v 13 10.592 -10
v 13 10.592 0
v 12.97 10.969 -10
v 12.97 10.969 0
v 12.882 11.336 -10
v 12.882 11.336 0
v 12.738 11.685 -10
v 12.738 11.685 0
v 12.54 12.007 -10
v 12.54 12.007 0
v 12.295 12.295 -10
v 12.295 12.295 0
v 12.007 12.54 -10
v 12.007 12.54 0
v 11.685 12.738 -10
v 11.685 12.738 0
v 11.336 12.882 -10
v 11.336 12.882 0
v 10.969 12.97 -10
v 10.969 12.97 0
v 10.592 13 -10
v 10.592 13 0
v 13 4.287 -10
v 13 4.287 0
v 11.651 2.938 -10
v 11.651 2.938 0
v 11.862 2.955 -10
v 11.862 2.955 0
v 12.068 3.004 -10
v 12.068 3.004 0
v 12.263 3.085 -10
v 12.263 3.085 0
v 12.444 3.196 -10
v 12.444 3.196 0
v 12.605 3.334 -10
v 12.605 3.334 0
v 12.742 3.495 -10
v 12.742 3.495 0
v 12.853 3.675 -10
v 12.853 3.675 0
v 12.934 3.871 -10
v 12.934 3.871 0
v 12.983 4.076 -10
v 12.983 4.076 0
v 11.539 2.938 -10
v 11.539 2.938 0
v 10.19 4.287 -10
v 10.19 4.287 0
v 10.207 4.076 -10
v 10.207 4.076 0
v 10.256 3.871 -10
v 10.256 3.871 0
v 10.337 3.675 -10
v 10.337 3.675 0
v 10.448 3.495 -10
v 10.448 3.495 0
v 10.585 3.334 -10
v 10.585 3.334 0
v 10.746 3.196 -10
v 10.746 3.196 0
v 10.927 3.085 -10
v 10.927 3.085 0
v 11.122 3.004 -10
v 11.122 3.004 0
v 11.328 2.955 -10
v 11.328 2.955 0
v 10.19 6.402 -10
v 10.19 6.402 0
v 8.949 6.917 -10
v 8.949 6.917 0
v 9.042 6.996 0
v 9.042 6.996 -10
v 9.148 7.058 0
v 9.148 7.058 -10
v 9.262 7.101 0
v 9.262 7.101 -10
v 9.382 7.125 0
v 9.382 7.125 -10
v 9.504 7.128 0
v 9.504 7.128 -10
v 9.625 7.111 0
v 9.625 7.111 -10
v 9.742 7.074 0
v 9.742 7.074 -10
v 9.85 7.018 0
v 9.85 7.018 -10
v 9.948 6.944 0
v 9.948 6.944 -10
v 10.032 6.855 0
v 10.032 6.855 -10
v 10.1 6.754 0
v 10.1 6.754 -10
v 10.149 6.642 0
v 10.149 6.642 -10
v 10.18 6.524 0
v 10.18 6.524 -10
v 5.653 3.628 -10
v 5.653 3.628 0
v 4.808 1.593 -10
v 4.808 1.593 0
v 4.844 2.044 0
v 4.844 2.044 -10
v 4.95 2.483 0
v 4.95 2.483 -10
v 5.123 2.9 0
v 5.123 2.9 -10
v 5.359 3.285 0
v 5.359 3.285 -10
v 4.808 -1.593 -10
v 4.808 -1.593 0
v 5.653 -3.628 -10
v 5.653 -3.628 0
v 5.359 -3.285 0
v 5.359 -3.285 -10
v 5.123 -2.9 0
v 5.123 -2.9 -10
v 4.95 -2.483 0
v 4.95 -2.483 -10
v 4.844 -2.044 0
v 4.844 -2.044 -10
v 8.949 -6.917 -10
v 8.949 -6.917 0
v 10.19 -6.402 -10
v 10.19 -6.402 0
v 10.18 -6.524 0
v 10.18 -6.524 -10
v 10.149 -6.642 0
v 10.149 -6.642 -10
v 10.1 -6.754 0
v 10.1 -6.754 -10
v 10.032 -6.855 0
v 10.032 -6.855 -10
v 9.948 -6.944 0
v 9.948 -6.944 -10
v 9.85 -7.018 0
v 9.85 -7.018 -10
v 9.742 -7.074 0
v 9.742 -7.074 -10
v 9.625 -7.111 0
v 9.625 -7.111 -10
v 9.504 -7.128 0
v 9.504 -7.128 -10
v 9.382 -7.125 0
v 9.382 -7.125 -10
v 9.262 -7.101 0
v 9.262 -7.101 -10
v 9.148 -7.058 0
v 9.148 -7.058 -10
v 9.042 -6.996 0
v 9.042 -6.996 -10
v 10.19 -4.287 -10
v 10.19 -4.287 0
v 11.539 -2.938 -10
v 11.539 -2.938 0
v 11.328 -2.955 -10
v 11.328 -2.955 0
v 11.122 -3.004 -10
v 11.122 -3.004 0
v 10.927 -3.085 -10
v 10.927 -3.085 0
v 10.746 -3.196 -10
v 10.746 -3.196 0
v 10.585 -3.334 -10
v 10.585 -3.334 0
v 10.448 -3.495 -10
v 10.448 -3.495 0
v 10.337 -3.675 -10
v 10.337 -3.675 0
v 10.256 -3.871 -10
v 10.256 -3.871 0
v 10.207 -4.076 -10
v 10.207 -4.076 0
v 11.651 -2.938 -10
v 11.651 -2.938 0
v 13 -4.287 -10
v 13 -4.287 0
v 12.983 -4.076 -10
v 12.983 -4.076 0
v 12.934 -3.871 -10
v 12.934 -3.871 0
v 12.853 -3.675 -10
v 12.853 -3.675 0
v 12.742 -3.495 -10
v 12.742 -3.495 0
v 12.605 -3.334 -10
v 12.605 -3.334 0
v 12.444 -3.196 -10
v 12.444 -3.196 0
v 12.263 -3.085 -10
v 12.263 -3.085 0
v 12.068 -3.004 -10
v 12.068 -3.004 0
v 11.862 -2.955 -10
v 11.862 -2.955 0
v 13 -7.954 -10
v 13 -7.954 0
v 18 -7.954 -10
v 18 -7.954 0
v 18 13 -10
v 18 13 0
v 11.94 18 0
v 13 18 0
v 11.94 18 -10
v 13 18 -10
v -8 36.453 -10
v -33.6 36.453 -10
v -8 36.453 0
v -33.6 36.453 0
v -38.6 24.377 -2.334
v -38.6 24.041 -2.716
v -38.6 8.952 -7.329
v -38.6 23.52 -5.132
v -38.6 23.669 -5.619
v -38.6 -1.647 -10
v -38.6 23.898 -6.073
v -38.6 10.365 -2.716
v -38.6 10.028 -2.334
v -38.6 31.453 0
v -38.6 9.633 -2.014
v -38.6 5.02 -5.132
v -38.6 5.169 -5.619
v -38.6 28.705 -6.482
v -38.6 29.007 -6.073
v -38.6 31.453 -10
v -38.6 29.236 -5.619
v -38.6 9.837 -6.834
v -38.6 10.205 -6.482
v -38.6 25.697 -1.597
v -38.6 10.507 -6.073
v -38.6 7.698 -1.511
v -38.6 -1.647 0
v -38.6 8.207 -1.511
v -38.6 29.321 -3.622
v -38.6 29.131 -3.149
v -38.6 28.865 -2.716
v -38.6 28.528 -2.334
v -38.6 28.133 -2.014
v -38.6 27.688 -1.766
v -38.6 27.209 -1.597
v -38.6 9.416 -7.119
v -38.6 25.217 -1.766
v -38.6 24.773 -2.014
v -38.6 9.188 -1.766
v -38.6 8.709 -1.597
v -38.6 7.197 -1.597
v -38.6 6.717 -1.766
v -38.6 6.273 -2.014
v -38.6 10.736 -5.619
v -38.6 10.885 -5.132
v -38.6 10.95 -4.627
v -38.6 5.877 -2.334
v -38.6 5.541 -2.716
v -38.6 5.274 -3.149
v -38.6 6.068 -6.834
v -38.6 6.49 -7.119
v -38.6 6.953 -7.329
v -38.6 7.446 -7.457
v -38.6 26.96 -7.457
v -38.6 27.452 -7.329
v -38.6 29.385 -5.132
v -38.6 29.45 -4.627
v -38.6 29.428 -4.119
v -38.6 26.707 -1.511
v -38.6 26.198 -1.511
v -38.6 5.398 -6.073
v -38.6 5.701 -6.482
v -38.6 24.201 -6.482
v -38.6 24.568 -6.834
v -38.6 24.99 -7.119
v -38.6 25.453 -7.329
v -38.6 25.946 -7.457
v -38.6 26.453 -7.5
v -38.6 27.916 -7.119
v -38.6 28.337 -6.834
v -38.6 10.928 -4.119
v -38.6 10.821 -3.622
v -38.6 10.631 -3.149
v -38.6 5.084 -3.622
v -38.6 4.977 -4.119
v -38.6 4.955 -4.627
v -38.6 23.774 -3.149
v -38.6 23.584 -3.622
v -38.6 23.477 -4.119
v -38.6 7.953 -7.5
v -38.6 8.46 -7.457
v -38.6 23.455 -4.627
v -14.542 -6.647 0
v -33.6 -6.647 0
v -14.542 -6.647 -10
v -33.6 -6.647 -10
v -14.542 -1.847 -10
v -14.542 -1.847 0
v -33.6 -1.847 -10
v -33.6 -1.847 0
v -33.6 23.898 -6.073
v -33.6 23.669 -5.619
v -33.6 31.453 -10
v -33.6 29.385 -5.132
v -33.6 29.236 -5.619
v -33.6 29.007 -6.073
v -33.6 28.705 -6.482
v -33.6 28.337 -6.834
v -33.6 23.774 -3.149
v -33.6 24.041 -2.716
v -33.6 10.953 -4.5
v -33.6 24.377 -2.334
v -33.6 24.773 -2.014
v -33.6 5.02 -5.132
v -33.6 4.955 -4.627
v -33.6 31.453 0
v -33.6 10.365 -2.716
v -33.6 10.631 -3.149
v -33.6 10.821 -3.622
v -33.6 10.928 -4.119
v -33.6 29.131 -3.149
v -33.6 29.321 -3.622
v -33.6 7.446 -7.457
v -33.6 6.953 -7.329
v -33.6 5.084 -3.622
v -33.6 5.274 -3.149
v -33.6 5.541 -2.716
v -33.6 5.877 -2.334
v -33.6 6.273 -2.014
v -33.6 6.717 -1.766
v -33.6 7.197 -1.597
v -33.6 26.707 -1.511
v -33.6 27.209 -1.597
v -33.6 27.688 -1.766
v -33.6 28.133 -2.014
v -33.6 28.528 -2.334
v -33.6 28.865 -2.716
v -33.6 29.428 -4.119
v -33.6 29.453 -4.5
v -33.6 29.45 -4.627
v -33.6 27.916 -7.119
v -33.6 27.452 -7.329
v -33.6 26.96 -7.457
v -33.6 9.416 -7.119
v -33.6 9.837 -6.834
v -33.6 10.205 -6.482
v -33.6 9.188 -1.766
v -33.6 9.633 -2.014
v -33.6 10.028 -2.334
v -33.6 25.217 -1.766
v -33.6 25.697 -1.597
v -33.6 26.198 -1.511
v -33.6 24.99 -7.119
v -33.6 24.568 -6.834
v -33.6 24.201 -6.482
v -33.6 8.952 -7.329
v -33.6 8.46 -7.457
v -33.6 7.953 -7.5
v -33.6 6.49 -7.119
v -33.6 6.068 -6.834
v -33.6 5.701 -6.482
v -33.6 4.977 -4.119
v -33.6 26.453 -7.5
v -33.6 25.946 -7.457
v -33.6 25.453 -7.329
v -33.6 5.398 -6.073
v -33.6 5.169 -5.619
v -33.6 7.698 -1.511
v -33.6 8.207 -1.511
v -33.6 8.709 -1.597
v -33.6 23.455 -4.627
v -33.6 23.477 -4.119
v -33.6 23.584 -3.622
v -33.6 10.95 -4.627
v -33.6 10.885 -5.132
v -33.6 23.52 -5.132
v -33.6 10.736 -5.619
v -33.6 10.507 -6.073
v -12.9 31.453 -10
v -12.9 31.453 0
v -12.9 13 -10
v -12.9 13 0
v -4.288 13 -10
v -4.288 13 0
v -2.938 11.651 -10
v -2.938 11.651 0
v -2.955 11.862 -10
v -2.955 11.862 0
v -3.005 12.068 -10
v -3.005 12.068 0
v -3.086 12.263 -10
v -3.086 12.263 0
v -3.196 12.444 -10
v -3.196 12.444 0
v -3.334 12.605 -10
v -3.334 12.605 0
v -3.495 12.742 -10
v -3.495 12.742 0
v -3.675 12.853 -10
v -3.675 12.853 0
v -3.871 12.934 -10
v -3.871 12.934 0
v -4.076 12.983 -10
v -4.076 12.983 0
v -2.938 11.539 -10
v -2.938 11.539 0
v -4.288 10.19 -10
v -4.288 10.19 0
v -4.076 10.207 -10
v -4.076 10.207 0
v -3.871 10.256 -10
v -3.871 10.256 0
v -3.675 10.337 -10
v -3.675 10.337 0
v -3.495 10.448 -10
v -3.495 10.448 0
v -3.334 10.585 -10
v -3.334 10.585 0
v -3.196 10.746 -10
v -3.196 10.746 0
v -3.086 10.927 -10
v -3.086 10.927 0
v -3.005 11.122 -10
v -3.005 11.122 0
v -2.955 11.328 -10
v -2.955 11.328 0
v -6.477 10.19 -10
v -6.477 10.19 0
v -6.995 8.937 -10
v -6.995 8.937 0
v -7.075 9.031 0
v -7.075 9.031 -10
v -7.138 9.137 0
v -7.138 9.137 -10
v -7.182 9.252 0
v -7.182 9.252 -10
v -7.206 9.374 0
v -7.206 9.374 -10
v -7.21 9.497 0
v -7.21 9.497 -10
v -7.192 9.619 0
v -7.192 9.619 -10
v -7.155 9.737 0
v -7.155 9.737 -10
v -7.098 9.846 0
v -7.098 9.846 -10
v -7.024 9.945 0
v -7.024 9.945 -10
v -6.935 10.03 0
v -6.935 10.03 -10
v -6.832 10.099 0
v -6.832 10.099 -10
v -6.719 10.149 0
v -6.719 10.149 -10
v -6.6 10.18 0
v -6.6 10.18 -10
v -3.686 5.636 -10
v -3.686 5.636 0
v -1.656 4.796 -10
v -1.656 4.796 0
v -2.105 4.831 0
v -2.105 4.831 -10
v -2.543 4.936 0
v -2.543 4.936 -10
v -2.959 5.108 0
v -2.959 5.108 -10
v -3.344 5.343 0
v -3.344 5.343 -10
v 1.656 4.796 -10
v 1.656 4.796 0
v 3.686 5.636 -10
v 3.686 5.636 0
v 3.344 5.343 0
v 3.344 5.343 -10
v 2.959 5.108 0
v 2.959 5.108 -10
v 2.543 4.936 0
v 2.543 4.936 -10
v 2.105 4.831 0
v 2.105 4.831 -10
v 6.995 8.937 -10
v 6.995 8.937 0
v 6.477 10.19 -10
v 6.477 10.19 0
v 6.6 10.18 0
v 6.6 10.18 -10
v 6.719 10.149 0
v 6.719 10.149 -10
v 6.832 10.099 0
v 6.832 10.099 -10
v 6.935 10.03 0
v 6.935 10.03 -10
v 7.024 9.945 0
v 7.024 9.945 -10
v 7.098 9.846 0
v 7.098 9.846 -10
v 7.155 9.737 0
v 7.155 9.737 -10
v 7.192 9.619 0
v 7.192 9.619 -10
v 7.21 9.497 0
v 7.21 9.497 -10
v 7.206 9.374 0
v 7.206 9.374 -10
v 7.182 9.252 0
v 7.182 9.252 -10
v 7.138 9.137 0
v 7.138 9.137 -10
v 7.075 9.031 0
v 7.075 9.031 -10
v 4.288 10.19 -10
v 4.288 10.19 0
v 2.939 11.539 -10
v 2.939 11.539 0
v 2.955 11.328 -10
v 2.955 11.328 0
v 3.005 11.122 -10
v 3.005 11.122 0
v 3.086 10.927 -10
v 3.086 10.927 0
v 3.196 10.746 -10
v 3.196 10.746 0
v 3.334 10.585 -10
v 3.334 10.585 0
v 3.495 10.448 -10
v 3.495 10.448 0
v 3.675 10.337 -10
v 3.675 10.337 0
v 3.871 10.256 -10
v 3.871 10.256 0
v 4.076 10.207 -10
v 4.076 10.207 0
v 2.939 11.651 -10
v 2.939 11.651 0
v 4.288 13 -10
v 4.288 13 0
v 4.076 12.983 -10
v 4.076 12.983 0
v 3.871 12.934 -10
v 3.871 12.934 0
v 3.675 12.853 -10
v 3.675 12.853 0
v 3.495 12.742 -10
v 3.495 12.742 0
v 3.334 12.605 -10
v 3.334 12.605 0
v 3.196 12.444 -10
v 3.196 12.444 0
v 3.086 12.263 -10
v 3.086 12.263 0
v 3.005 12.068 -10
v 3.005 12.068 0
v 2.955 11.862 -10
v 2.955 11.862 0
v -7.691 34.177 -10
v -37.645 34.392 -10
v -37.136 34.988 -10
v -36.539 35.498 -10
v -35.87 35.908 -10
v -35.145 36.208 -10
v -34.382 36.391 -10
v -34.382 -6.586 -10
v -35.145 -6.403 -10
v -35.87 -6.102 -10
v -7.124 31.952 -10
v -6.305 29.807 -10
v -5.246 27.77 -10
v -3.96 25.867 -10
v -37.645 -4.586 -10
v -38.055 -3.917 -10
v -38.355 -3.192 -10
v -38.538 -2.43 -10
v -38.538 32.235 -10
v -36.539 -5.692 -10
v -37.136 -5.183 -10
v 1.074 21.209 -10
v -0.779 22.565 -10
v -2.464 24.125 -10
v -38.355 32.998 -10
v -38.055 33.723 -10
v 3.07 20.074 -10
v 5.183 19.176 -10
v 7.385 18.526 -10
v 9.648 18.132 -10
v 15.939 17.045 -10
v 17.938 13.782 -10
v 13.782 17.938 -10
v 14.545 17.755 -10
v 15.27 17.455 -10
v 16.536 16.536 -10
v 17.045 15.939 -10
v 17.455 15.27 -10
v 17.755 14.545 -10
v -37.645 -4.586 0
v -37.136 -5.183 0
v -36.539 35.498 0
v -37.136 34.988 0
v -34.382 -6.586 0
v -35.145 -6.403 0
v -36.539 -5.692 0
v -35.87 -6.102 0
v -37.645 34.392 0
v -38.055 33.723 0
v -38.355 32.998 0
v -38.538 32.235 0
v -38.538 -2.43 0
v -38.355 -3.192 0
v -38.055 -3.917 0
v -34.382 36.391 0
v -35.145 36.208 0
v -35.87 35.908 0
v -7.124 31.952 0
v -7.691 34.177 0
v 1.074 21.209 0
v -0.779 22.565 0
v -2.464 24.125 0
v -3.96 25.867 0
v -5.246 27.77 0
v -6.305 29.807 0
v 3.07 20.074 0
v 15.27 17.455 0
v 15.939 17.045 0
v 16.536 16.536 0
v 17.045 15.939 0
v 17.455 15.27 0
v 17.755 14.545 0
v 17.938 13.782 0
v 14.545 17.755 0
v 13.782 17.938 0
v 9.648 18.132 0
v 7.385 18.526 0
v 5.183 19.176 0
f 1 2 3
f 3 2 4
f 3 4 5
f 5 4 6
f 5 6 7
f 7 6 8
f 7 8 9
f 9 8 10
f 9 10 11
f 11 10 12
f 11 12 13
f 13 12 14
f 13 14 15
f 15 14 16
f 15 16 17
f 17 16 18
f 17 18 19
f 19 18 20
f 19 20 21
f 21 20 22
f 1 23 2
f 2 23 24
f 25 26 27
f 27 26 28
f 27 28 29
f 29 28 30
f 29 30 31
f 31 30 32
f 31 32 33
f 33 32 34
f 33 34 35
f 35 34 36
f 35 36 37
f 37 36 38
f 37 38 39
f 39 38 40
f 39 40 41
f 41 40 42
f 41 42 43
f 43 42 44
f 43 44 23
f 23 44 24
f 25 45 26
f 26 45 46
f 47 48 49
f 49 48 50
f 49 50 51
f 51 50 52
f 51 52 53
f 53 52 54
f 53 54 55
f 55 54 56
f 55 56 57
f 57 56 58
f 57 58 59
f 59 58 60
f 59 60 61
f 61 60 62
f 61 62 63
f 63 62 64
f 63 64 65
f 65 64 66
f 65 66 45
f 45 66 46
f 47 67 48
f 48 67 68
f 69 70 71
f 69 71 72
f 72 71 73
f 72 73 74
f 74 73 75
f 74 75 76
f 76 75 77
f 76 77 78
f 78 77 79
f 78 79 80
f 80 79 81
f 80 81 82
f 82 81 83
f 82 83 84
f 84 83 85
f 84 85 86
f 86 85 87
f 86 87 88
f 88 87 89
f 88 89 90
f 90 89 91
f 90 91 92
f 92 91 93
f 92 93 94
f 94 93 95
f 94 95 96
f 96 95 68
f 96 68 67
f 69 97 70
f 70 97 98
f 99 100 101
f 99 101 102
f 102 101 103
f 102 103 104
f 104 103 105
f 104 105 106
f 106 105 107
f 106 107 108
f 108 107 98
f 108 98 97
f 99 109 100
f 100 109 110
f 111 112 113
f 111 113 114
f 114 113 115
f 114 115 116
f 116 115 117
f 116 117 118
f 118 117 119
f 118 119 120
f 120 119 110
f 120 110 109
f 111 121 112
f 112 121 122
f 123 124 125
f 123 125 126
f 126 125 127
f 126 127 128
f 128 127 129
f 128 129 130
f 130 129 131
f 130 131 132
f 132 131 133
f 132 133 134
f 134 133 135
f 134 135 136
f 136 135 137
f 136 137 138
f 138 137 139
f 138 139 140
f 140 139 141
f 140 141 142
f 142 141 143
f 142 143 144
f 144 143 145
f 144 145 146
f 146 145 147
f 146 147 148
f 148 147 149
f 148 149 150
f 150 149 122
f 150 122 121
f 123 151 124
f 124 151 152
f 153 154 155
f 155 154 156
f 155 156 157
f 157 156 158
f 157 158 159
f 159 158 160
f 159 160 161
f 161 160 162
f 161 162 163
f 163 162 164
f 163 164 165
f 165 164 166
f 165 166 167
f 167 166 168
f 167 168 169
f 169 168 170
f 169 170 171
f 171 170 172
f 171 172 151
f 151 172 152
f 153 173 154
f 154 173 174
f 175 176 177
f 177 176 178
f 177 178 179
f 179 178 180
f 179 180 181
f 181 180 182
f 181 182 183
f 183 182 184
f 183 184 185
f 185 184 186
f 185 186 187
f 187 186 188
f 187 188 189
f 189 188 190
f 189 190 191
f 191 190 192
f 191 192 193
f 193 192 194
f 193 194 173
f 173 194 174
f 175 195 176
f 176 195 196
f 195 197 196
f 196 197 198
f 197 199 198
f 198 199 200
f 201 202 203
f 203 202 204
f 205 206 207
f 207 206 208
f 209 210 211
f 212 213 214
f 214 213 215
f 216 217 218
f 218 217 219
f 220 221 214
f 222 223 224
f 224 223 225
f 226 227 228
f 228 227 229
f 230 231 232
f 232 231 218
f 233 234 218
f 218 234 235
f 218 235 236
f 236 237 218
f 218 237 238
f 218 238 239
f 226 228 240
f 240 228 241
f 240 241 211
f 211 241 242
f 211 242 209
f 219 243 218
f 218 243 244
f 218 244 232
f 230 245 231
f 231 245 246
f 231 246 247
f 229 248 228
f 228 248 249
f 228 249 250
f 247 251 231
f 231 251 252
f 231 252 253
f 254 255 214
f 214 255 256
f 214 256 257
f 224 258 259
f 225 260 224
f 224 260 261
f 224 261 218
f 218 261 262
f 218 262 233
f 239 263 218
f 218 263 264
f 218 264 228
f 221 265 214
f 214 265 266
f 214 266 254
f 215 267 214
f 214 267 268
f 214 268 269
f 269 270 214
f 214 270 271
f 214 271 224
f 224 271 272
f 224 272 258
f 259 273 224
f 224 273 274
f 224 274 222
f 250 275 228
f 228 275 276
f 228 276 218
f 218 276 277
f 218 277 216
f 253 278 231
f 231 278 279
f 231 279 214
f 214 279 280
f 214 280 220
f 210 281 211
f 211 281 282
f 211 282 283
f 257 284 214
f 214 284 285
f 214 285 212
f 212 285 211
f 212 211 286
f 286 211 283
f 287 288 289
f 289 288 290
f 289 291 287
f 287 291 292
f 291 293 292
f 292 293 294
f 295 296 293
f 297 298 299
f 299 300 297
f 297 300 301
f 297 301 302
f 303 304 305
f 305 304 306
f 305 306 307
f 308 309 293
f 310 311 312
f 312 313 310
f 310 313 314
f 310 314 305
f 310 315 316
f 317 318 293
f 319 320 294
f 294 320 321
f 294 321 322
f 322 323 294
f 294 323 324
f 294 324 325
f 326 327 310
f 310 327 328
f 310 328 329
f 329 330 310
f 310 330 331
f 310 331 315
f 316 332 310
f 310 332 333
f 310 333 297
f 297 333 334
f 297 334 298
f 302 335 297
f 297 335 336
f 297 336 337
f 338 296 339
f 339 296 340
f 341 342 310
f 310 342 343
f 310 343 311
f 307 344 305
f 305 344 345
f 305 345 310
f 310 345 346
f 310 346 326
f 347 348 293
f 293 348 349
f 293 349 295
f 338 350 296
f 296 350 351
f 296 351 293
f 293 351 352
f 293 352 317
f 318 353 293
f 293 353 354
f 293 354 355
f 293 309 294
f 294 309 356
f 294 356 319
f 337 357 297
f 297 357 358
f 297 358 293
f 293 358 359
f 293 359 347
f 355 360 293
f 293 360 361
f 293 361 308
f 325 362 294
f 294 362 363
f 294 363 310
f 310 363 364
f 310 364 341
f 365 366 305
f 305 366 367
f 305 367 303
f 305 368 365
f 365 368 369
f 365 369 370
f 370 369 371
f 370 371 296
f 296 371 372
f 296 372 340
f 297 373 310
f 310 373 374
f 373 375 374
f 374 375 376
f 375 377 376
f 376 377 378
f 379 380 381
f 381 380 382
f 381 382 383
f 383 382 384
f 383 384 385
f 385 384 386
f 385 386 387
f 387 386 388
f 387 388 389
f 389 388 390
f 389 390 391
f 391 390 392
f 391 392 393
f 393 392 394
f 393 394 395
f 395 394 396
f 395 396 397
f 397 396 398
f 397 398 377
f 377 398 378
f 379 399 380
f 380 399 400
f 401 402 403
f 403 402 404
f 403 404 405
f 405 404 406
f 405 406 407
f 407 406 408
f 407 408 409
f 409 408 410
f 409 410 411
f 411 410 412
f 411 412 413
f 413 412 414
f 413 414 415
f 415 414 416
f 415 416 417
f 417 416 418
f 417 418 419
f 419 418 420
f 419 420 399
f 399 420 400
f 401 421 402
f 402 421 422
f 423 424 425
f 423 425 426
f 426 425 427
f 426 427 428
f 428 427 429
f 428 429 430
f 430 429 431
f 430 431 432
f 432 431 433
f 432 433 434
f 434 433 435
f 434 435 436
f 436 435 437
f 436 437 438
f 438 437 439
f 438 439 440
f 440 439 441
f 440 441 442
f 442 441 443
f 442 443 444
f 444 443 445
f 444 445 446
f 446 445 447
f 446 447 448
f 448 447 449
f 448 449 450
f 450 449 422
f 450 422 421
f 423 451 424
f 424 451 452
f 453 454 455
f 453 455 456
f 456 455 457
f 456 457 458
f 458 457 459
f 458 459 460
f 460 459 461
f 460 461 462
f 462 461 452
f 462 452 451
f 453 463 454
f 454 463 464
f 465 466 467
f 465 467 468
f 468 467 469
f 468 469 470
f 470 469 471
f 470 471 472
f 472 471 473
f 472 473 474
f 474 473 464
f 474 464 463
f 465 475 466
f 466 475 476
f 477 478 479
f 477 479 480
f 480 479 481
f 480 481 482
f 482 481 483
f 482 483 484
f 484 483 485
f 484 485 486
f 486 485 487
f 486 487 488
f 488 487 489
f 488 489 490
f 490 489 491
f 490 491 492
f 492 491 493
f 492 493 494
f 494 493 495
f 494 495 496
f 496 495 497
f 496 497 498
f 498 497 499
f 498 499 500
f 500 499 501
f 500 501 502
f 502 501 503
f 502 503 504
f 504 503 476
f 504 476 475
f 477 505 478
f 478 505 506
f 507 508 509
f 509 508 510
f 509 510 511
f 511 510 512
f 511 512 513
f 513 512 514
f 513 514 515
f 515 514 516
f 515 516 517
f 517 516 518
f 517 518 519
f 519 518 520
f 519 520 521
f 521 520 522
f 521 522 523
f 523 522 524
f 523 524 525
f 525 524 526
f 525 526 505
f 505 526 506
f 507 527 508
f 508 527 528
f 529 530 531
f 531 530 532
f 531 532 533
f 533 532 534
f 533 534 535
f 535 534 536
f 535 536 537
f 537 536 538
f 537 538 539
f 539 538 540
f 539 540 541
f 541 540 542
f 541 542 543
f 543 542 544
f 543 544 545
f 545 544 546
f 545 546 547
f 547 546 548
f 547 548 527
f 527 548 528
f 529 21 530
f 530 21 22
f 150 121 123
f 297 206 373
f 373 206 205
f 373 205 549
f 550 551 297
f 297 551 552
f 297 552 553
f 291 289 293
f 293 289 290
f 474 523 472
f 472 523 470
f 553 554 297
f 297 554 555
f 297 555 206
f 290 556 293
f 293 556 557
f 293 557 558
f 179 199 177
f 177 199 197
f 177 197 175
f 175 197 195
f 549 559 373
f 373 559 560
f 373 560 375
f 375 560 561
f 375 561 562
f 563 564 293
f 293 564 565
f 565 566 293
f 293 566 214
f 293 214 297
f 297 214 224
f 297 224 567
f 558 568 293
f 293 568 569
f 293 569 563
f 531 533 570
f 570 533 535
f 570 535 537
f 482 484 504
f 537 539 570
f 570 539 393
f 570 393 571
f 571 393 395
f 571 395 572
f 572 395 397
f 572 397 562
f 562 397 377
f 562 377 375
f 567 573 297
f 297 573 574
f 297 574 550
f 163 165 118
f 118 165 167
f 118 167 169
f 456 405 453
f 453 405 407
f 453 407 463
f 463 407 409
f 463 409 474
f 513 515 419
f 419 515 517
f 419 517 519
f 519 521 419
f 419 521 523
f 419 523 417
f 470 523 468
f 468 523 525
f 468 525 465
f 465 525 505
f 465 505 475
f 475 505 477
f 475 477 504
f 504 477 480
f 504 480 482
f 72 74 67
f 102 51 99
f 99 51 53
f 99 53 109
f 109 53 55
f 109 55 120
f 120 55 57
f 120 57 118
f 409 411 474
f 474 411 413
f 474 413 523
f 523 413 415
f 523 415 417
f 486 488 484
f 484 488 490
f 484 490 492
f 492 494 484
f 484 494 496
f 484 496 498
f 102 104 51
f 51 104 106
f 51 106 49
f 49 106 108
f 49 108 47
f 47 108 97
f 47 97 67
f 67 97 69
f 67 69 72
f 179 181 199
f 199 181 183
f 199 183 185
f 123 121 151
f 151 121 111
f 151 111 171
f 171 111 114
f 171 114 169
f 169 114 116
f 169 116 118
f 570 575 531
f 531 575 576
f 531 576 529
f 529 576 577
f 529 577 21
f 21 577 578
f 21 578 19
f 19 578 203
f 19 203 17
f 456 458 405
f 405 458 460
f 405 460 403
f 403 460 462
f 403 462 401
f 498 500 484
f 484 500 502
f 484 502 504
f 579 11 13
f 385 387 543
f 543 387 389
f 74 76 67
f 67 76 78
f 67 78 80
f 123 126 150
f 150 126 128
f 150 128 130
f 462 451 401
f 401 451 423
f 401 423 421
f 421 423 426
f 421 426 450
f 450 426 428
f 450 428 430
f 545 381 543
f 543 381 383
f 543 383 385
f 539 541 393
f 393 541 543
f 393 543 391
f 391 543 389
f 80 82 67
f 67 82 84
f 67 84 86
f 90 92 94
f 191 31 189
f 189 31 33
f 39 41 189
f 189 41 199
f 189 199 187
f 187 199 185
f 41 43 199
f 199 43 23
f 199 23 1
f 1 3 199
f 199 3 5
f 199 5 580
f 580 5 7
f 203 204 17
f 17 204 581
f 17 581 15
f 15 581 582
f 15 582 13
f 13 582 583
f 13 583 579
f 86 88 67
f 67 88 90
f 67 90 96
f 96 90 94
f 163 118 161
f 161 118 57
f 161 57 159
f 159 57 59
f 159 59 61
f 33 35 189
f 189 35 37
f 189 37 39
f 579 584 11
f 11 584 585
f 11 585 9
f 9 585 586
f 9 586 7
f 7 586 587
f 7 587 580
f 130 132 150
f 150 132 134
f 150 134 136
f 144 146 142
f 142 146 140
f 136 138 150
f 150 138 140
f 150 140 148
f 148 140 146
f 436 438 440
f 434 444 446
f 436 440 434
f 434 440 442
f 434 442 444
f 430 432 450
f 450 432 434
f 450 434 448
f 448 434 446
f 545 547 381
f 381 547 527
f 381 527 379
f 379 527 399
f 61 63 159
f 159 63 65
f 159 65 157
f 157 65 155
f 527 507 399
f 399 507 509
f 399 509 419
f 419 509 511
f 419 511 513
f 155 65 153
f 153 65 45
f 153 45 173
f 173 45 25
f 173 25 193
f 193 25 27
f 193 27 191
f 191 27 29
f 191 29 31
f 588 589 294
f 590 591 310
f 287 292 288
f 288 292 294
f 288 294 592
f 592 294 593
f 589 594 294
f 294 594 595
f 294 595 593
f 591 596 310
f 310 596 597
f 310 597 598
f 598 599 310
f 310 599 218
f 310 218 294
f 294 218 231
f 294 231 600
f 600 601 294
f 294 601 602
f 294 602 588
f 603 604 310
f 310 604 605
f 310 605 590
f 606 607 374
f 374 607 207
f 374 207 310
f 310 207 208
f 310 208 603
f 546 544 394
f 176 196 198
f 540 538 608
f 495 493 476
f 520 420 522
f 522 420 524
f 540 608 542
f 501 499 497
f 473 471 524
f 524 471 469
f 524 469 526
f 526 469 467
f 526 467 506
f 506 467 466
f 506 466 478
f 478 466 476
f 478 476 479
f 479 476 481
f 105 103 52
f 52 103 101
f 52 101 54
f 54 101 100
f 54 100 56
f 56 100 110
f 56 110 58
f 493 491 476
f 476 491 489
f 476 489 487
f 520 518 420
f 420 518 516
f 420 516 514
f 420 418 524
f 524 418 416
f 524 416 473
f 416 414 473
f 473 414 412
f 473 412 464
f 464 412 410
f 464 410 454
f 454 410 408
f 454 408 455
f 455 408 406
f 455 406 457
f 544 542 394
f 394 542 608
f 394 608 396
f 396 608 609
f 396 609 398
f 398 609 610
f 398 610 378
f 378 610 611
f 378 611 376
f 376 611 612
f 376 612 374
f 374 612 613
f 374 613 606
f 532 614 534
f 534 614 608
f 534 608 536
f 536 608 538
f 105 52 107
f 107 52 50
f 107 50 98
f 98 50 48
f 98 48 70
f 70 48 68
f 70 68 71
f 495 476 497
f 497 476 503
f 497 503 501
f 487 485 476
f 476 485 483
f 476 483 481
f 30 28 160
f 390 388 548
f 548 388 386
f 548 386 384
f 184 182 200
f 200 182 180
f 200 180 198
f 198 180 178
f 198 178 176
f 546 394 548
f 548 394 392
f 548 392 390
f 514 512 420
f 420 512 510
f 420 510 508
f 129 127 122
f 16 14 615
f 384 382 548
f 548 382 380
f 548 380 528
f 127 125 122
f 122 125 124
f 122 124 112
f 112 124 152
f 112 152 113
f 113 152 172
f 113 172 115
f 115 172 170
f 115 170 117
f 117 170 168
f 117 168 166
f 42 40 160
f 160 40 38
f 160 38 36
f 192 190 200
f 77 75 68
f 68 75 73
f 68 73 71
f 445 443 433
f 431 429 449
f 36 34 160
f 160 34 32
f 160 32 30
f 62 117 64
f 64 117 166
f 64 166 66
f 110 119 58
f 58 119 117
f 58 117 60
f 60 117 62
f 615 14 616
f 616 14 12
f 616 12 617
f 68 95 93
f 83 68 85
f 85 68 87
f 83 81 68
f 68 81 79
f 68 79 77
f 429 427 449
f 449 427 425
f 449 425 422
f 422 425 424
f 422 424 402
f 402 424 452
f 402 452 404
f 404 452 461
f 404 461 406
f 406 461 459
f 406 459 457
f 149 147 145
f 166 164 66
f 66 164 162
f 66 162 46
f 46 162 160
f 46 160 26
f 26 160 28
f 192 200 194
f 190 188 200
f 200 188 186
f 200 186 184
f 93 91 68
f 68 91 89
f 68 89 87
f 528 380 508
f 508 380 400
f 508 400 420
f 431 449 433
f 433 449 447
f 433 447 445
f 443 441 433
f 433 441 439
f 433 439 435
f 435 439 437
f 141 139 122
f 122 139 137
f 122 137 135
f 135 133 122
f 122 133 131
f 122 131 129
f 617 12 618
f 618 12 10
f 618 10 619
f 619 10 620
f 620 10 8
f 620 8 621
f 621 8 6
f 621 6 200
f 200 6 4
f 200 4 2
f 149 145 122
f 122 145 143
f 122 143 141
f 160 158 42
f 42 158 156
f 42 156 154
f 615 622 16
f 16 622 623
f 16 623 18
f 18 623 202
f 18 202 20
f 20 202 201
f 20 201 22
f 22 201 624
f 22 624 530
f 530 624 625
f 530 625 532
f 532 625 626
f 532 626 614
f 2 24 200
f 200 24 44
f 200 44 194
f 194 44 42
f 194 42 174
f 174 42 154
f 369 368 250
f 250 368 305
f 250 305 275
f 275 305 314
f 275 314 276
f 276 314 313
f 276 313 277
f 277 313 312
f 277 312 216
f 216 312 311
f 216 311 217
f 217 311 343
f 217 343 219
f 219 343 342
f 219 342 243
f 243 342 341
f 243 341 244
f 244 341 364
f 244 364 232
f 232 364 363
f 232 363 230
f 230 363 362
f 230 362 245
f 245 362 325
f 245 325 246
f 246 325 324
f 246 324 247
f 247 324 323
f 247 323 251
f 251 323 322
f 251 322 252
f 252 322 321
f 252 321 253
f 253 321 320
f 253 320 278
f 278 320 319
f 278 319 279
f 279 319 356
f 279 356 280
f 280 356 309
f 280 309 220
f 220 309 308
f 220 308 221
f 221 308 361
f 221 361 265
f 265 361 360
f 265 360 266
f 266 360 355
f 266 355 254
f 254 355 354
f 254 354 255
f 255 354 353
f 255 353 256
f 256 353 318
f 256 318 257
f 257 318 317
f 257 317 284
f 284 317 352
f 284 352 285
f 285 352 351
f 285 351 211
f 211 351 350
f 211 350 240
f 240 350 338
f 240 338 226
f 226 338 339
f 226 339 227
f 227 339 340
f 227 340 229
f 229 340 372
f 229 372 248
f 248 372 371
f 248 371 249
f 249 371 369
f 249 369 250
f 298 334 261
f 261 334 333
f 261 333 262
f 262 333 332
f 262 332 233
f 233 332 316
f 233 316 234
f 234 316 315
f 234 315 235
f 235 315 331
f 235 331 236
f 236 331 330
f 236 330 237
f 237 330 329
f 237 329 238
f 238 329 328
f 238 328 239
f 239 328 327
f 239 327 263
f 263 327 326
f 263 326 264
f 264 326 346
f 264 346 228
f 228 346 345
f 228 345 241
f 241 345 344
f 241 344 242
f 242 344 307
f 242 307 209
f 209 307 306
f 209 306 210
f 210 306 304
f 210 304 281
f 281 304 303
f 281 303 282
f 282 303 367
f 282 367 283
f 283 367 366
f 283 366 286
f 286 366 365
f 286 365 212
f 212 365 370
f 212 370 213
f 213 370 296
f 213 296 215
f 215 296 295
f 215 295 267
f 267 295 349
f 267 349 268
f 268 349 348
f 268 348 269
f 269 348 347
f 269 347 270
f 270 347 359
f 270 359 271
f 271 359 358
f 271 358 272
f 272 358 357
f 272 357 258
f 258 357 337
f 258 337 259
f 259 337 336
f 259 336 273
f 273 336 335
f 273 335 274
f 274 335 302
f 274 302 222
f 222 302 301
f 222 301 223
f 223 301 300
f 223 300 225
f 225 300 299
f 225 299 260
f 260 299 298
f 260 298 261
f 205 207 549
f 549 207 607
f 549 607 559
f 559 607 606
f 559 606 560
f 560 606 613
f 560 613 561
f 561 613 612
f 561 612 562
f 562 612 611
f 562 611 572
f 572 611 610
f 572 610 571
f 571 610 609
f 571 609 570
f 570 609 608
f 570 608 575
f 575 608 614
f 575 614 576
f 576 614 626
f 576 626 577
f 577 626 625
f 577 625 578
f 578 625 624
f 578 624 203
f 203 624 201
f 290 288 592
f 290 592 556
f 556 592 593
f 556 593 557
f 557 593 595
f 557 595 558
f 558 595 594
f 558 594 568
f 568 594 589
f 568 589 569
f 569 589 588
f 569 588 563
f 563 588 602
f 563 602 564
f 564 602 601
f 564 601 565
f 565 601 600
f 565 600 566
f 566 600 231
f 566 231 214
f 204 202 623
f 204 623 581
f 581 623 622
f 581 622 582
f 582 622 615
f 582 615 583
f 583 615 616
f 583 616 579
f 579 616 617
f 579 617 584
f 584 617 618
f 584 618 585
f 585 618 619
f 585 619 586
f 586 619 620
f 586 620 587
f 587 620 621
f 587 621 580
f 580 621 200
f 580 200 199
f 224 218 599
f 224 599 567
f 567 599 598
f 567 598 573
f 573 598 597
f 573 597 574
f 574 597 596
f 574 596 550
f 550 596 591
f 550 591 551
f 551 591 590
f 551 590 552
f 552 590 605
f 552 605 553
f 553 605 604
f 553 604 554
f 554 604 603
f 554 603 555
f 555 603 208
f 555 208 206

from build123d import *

# Parameters (mm, degrees)
BOSS_EXTRUDE1_DEPTH = 10
CUT_EXTRUDE1_REACH  = 70.061
SKETCH2_R           = 3
FILLET1_R           = 20
FILLET2_R           = 5
SKETCH3_W           = 29.852045942
SKETCH3_H           = 84.66747525
CUT_EXTRUDE2_DEPTH  = 125


with BuildPart() as part:
    # Sketch1 → Boss-Extrude1 (new body)
    with BuildSketch(Plane.XY):
        with BuildLine():
            Line((13, -5.3170836), (13, -7.9544418))
            Line((13, -7.9544418), (18, -7.9544418))
            Line((18, -7.9544418), (18, 18))
            Line((18, 18), (-8, 18))
            Line((-8, 18), (-8, 36.4526666))
            Line((-8, 36.4526666), (-38.6, 36.4526666))
            Line((-38.6, 36.4526666), (-38.6, -6.6473334))
            Line((-38.6, -6.6473334), (-18, -6.6473334))
            Line((-18, -6.6473334), (-14.542097223, -6.6473334))
            Line((-14.542097223, -6.6473334), (-14.542097223, -1.8473334))
            Line((-14.542097223, -1.8473334), (-33.6, -1.8473334))
            Line((-33.6, -1.8473334), (-33.6, 31.4526666))
            Line((-33.6, 31.4526666), (-12.9, 31.4526666))
            Line((-12.9, 31.4526666), (-12.9, 13))
            Line((-12.9, 13), (-4.305880552, 13))
            Line((-4.305880552, 13), (-4.287512407, 13))
            ThreePointArc((-4.287512407, 13), (-3.333616586, 12.604883414), (-2.9385, 11.650987593))
            Line((-2.9385, 11.650987593), (-2.9385, 11.539212407))
            ThreePointArc((-2.9385, 11.539212407), (-3.333616586, 10.585316586), (-4.287512407, 10.1902))
            Line((-4.287512407, 10.1902), (-6.476788598, 10.1902))
            ThreePointArc((-6.476788598, 10.1902), (-7.154992901, 9.736757749), (-6.995146796, 8.93674514))
            Line((-6.995146796, 8.93674514), (-3.686383353, 5.635543623))
            ThreePointArc((-3.686383353, 5.635543623), (-2.754473742, 5.014017446), (-1.655778399, 4.7958))
            Line((-1.655778399, 4.7958), (1.655778399, 4.7958))
            ThreePointArc((1.655778399, 4.7958), (2.754473742, 5.014017446), (3.686383353, 5.635543623))
            Line((3.686383353, 5.635543623), (6.995146796, 8.93674514))
            ThreePointArc((6.995146796, 8.93674514), (7.154992901, 9.736757749), (6.476788598, 10.1902))
            Line((6.476788598, 10.1902), (4.287512407, 10.1902))
            ThreePointArc((4.287512407, 10.1902), (3.333616586, 10.585316586), (2.9385, 11.539212407))
            Line((2.9385, 11.539212407), (2.9385, 11.650987593))
            ThreePointArc((2.9385, 11.650987593), (3.333616586, 12.604883414), (4.287512407, 13))
            Line((4.287512407, 13), (5.321597603, 13))
            Line((5.321597603, 13), (10.5918, 13))
            ThreePointArc((10.5918, 13), (12.29465455, 12.29465455), (13, 10.5918))
            Line((13, 10.5918), (13, 7.9544418))
            Line((13, 7.9544418), (13, 5.3170836))
            Line((13, 5.3170836), (13, 4.287469289))
            ThreePointArc((13, 4.287469289), (12.604883414, 3.333573468), (11.650987593, 2.938456882))
            Line((11.650987593, 2.938456882), (11.539212407, 2.938456882))
            ThreePointArc((11.539212407, 2.938456882), (10.585316586, 3.333573468), (10.1902, 4.287469289))
            Line((10.1902, 4.287469289), (10.1902, 6.402089023))
            ThreePointArc((10.1902, 6.402089023), (9.74154152, 7.073969797), (8.94902056, 6.917034355))
            Line((8.94902056, 6.917034355), (5.652895046, 3.628441884))
            ThreePointArc((5.652895046, 3.628441884), (5.027976112, 2.694919539), (4.8085, 1.593185507))
            Line((4.8085, 1.593185507), (4.8085, -1.593185507))
            ThreePointArc((4.8085, -1.593185507), (5.027976112, -2.694919539), (5.652895046, -3.628441884))
            Line((5.652895046, -3.628441884), (8.94902056, -6.917034355))
            ThreePointArc((8.94902056, -6.917034355), (9.74154152, -7.073969797), (10.1902, -6.402089023))
            Line((10.1902, -6.402089023), (10.1902, -4.287469289))
            ThreePointArc((10.1902, -4.287469289), (10.585316586, -3.333573468), (11.539212407, -2.938456882))
            Line((11.539212407, -2.938456882), (11.650987593, -2.938456882))
            ThreePointArc((11.650987593, -2.938456882), (12.604883414, -3.333573468), (13, -4.287469289))
            Line((13, -4.287469289), (13, -5.3170836))
        make_face()
    extrude(amount=BOSS_EXTRUDE1_DEPTH)

    # Sketch2 → Cut-Extrude1 (cut, up to next)
    with BuildSketch(Plane.ZY.offset(38.6), mode=Mode.PRIVATE) as cut_extrude1_sk1:
        with Locations((4.5, 26.4526666)):
            Circle(SKETCH2_R)
    cut_extrude1_tool1 = extrude(cut_extrude1_sk1.sketch, amount=-CUT_EXTRUDE1_REACH, mode=Mode.PRIVATE) & part.part
    # Sketch2 → Cut-Extrude1 (cut, up to next)
    with BuildSketch(Plane.ZY.offset(38.6), mode=Mode.PRIVATE) as cut_extrude1_sk2:
        with Locations((4.5, 7.9526666)):
            Circle(SKETCH2_R)
    cut_extrude1_tool2 = extrude(cut_extrude1_sk2.sketch, amount=-CUT_EXTRUDE1_REACH, mode=Mode.PRIVATE) & part.part
    add(cut_extrude1_tool1.solids().sort_by_distance((-38.6, 26.452667, 4.5))[0], mode=Mode.SUBTRACT)
    add(cut_extrude1_tool2.solids().sort_by_distance((-38.6, 7.952667, 4.5))[0], mode=Mode.SUBTRACT)

    # Fillet1
    # the kernel refuses this fillet: 20 mm, written as the material it adds along each edge
    with BuildSketch(Plane(origin=(-8, 18, 0), x_dir=(1, 0, 0), z_dir=(0, 0, 1))) as fillet1_piece_1:
        with BuildLine():
            CenterArc((19.940054146, 20), FILLET1_R, 184.437217766, 85.562782234)
            Line((0, 18.4526666), (-0.398801083, 18.421719932))
            ThreePointArc((-0.398801083, 18.421719932), (-0.4, 9.2263333), (-0.4, 0))
            Line((-0.4, 0), (0, -0.4))
            Line((0, -0.4), (19.940054146, -0.4))
            Line((19.940054146, -0.4), (19.940054146, 0))
        make_face()
    extrude(amount=10)

    # Fillet2
    fillet2_edges = [part.edges().sort_by_distance(p)[0] for p in [
        (-38.6, -6.6473334, 5),
        (-38.6, 36.4526666, 5),
        (18, 18, 5),
    ]]
    fillet(fillet2_edges, radius=FILLET2_R)


with BuildPart() as body_2:
    # Mirror1: mirrored copy
    add(part.part.mirror(Plane.XY))


with BuildPart() as part_1:
    add(part.part)

    # Sketch3 → Cut-Extrude2 (cut)
    with BuildSketch(Plane.ZY.offset(38.6)):
        with Locations((14.926022971, 7.66612184)):
            Rectangle(SKETCH3_W, SKETCH3_H)
    extrude(amount=-CUT_EXTRUDE2_DEPTH, mode=Mode.SUBTRACT)


solid = body_2.part
